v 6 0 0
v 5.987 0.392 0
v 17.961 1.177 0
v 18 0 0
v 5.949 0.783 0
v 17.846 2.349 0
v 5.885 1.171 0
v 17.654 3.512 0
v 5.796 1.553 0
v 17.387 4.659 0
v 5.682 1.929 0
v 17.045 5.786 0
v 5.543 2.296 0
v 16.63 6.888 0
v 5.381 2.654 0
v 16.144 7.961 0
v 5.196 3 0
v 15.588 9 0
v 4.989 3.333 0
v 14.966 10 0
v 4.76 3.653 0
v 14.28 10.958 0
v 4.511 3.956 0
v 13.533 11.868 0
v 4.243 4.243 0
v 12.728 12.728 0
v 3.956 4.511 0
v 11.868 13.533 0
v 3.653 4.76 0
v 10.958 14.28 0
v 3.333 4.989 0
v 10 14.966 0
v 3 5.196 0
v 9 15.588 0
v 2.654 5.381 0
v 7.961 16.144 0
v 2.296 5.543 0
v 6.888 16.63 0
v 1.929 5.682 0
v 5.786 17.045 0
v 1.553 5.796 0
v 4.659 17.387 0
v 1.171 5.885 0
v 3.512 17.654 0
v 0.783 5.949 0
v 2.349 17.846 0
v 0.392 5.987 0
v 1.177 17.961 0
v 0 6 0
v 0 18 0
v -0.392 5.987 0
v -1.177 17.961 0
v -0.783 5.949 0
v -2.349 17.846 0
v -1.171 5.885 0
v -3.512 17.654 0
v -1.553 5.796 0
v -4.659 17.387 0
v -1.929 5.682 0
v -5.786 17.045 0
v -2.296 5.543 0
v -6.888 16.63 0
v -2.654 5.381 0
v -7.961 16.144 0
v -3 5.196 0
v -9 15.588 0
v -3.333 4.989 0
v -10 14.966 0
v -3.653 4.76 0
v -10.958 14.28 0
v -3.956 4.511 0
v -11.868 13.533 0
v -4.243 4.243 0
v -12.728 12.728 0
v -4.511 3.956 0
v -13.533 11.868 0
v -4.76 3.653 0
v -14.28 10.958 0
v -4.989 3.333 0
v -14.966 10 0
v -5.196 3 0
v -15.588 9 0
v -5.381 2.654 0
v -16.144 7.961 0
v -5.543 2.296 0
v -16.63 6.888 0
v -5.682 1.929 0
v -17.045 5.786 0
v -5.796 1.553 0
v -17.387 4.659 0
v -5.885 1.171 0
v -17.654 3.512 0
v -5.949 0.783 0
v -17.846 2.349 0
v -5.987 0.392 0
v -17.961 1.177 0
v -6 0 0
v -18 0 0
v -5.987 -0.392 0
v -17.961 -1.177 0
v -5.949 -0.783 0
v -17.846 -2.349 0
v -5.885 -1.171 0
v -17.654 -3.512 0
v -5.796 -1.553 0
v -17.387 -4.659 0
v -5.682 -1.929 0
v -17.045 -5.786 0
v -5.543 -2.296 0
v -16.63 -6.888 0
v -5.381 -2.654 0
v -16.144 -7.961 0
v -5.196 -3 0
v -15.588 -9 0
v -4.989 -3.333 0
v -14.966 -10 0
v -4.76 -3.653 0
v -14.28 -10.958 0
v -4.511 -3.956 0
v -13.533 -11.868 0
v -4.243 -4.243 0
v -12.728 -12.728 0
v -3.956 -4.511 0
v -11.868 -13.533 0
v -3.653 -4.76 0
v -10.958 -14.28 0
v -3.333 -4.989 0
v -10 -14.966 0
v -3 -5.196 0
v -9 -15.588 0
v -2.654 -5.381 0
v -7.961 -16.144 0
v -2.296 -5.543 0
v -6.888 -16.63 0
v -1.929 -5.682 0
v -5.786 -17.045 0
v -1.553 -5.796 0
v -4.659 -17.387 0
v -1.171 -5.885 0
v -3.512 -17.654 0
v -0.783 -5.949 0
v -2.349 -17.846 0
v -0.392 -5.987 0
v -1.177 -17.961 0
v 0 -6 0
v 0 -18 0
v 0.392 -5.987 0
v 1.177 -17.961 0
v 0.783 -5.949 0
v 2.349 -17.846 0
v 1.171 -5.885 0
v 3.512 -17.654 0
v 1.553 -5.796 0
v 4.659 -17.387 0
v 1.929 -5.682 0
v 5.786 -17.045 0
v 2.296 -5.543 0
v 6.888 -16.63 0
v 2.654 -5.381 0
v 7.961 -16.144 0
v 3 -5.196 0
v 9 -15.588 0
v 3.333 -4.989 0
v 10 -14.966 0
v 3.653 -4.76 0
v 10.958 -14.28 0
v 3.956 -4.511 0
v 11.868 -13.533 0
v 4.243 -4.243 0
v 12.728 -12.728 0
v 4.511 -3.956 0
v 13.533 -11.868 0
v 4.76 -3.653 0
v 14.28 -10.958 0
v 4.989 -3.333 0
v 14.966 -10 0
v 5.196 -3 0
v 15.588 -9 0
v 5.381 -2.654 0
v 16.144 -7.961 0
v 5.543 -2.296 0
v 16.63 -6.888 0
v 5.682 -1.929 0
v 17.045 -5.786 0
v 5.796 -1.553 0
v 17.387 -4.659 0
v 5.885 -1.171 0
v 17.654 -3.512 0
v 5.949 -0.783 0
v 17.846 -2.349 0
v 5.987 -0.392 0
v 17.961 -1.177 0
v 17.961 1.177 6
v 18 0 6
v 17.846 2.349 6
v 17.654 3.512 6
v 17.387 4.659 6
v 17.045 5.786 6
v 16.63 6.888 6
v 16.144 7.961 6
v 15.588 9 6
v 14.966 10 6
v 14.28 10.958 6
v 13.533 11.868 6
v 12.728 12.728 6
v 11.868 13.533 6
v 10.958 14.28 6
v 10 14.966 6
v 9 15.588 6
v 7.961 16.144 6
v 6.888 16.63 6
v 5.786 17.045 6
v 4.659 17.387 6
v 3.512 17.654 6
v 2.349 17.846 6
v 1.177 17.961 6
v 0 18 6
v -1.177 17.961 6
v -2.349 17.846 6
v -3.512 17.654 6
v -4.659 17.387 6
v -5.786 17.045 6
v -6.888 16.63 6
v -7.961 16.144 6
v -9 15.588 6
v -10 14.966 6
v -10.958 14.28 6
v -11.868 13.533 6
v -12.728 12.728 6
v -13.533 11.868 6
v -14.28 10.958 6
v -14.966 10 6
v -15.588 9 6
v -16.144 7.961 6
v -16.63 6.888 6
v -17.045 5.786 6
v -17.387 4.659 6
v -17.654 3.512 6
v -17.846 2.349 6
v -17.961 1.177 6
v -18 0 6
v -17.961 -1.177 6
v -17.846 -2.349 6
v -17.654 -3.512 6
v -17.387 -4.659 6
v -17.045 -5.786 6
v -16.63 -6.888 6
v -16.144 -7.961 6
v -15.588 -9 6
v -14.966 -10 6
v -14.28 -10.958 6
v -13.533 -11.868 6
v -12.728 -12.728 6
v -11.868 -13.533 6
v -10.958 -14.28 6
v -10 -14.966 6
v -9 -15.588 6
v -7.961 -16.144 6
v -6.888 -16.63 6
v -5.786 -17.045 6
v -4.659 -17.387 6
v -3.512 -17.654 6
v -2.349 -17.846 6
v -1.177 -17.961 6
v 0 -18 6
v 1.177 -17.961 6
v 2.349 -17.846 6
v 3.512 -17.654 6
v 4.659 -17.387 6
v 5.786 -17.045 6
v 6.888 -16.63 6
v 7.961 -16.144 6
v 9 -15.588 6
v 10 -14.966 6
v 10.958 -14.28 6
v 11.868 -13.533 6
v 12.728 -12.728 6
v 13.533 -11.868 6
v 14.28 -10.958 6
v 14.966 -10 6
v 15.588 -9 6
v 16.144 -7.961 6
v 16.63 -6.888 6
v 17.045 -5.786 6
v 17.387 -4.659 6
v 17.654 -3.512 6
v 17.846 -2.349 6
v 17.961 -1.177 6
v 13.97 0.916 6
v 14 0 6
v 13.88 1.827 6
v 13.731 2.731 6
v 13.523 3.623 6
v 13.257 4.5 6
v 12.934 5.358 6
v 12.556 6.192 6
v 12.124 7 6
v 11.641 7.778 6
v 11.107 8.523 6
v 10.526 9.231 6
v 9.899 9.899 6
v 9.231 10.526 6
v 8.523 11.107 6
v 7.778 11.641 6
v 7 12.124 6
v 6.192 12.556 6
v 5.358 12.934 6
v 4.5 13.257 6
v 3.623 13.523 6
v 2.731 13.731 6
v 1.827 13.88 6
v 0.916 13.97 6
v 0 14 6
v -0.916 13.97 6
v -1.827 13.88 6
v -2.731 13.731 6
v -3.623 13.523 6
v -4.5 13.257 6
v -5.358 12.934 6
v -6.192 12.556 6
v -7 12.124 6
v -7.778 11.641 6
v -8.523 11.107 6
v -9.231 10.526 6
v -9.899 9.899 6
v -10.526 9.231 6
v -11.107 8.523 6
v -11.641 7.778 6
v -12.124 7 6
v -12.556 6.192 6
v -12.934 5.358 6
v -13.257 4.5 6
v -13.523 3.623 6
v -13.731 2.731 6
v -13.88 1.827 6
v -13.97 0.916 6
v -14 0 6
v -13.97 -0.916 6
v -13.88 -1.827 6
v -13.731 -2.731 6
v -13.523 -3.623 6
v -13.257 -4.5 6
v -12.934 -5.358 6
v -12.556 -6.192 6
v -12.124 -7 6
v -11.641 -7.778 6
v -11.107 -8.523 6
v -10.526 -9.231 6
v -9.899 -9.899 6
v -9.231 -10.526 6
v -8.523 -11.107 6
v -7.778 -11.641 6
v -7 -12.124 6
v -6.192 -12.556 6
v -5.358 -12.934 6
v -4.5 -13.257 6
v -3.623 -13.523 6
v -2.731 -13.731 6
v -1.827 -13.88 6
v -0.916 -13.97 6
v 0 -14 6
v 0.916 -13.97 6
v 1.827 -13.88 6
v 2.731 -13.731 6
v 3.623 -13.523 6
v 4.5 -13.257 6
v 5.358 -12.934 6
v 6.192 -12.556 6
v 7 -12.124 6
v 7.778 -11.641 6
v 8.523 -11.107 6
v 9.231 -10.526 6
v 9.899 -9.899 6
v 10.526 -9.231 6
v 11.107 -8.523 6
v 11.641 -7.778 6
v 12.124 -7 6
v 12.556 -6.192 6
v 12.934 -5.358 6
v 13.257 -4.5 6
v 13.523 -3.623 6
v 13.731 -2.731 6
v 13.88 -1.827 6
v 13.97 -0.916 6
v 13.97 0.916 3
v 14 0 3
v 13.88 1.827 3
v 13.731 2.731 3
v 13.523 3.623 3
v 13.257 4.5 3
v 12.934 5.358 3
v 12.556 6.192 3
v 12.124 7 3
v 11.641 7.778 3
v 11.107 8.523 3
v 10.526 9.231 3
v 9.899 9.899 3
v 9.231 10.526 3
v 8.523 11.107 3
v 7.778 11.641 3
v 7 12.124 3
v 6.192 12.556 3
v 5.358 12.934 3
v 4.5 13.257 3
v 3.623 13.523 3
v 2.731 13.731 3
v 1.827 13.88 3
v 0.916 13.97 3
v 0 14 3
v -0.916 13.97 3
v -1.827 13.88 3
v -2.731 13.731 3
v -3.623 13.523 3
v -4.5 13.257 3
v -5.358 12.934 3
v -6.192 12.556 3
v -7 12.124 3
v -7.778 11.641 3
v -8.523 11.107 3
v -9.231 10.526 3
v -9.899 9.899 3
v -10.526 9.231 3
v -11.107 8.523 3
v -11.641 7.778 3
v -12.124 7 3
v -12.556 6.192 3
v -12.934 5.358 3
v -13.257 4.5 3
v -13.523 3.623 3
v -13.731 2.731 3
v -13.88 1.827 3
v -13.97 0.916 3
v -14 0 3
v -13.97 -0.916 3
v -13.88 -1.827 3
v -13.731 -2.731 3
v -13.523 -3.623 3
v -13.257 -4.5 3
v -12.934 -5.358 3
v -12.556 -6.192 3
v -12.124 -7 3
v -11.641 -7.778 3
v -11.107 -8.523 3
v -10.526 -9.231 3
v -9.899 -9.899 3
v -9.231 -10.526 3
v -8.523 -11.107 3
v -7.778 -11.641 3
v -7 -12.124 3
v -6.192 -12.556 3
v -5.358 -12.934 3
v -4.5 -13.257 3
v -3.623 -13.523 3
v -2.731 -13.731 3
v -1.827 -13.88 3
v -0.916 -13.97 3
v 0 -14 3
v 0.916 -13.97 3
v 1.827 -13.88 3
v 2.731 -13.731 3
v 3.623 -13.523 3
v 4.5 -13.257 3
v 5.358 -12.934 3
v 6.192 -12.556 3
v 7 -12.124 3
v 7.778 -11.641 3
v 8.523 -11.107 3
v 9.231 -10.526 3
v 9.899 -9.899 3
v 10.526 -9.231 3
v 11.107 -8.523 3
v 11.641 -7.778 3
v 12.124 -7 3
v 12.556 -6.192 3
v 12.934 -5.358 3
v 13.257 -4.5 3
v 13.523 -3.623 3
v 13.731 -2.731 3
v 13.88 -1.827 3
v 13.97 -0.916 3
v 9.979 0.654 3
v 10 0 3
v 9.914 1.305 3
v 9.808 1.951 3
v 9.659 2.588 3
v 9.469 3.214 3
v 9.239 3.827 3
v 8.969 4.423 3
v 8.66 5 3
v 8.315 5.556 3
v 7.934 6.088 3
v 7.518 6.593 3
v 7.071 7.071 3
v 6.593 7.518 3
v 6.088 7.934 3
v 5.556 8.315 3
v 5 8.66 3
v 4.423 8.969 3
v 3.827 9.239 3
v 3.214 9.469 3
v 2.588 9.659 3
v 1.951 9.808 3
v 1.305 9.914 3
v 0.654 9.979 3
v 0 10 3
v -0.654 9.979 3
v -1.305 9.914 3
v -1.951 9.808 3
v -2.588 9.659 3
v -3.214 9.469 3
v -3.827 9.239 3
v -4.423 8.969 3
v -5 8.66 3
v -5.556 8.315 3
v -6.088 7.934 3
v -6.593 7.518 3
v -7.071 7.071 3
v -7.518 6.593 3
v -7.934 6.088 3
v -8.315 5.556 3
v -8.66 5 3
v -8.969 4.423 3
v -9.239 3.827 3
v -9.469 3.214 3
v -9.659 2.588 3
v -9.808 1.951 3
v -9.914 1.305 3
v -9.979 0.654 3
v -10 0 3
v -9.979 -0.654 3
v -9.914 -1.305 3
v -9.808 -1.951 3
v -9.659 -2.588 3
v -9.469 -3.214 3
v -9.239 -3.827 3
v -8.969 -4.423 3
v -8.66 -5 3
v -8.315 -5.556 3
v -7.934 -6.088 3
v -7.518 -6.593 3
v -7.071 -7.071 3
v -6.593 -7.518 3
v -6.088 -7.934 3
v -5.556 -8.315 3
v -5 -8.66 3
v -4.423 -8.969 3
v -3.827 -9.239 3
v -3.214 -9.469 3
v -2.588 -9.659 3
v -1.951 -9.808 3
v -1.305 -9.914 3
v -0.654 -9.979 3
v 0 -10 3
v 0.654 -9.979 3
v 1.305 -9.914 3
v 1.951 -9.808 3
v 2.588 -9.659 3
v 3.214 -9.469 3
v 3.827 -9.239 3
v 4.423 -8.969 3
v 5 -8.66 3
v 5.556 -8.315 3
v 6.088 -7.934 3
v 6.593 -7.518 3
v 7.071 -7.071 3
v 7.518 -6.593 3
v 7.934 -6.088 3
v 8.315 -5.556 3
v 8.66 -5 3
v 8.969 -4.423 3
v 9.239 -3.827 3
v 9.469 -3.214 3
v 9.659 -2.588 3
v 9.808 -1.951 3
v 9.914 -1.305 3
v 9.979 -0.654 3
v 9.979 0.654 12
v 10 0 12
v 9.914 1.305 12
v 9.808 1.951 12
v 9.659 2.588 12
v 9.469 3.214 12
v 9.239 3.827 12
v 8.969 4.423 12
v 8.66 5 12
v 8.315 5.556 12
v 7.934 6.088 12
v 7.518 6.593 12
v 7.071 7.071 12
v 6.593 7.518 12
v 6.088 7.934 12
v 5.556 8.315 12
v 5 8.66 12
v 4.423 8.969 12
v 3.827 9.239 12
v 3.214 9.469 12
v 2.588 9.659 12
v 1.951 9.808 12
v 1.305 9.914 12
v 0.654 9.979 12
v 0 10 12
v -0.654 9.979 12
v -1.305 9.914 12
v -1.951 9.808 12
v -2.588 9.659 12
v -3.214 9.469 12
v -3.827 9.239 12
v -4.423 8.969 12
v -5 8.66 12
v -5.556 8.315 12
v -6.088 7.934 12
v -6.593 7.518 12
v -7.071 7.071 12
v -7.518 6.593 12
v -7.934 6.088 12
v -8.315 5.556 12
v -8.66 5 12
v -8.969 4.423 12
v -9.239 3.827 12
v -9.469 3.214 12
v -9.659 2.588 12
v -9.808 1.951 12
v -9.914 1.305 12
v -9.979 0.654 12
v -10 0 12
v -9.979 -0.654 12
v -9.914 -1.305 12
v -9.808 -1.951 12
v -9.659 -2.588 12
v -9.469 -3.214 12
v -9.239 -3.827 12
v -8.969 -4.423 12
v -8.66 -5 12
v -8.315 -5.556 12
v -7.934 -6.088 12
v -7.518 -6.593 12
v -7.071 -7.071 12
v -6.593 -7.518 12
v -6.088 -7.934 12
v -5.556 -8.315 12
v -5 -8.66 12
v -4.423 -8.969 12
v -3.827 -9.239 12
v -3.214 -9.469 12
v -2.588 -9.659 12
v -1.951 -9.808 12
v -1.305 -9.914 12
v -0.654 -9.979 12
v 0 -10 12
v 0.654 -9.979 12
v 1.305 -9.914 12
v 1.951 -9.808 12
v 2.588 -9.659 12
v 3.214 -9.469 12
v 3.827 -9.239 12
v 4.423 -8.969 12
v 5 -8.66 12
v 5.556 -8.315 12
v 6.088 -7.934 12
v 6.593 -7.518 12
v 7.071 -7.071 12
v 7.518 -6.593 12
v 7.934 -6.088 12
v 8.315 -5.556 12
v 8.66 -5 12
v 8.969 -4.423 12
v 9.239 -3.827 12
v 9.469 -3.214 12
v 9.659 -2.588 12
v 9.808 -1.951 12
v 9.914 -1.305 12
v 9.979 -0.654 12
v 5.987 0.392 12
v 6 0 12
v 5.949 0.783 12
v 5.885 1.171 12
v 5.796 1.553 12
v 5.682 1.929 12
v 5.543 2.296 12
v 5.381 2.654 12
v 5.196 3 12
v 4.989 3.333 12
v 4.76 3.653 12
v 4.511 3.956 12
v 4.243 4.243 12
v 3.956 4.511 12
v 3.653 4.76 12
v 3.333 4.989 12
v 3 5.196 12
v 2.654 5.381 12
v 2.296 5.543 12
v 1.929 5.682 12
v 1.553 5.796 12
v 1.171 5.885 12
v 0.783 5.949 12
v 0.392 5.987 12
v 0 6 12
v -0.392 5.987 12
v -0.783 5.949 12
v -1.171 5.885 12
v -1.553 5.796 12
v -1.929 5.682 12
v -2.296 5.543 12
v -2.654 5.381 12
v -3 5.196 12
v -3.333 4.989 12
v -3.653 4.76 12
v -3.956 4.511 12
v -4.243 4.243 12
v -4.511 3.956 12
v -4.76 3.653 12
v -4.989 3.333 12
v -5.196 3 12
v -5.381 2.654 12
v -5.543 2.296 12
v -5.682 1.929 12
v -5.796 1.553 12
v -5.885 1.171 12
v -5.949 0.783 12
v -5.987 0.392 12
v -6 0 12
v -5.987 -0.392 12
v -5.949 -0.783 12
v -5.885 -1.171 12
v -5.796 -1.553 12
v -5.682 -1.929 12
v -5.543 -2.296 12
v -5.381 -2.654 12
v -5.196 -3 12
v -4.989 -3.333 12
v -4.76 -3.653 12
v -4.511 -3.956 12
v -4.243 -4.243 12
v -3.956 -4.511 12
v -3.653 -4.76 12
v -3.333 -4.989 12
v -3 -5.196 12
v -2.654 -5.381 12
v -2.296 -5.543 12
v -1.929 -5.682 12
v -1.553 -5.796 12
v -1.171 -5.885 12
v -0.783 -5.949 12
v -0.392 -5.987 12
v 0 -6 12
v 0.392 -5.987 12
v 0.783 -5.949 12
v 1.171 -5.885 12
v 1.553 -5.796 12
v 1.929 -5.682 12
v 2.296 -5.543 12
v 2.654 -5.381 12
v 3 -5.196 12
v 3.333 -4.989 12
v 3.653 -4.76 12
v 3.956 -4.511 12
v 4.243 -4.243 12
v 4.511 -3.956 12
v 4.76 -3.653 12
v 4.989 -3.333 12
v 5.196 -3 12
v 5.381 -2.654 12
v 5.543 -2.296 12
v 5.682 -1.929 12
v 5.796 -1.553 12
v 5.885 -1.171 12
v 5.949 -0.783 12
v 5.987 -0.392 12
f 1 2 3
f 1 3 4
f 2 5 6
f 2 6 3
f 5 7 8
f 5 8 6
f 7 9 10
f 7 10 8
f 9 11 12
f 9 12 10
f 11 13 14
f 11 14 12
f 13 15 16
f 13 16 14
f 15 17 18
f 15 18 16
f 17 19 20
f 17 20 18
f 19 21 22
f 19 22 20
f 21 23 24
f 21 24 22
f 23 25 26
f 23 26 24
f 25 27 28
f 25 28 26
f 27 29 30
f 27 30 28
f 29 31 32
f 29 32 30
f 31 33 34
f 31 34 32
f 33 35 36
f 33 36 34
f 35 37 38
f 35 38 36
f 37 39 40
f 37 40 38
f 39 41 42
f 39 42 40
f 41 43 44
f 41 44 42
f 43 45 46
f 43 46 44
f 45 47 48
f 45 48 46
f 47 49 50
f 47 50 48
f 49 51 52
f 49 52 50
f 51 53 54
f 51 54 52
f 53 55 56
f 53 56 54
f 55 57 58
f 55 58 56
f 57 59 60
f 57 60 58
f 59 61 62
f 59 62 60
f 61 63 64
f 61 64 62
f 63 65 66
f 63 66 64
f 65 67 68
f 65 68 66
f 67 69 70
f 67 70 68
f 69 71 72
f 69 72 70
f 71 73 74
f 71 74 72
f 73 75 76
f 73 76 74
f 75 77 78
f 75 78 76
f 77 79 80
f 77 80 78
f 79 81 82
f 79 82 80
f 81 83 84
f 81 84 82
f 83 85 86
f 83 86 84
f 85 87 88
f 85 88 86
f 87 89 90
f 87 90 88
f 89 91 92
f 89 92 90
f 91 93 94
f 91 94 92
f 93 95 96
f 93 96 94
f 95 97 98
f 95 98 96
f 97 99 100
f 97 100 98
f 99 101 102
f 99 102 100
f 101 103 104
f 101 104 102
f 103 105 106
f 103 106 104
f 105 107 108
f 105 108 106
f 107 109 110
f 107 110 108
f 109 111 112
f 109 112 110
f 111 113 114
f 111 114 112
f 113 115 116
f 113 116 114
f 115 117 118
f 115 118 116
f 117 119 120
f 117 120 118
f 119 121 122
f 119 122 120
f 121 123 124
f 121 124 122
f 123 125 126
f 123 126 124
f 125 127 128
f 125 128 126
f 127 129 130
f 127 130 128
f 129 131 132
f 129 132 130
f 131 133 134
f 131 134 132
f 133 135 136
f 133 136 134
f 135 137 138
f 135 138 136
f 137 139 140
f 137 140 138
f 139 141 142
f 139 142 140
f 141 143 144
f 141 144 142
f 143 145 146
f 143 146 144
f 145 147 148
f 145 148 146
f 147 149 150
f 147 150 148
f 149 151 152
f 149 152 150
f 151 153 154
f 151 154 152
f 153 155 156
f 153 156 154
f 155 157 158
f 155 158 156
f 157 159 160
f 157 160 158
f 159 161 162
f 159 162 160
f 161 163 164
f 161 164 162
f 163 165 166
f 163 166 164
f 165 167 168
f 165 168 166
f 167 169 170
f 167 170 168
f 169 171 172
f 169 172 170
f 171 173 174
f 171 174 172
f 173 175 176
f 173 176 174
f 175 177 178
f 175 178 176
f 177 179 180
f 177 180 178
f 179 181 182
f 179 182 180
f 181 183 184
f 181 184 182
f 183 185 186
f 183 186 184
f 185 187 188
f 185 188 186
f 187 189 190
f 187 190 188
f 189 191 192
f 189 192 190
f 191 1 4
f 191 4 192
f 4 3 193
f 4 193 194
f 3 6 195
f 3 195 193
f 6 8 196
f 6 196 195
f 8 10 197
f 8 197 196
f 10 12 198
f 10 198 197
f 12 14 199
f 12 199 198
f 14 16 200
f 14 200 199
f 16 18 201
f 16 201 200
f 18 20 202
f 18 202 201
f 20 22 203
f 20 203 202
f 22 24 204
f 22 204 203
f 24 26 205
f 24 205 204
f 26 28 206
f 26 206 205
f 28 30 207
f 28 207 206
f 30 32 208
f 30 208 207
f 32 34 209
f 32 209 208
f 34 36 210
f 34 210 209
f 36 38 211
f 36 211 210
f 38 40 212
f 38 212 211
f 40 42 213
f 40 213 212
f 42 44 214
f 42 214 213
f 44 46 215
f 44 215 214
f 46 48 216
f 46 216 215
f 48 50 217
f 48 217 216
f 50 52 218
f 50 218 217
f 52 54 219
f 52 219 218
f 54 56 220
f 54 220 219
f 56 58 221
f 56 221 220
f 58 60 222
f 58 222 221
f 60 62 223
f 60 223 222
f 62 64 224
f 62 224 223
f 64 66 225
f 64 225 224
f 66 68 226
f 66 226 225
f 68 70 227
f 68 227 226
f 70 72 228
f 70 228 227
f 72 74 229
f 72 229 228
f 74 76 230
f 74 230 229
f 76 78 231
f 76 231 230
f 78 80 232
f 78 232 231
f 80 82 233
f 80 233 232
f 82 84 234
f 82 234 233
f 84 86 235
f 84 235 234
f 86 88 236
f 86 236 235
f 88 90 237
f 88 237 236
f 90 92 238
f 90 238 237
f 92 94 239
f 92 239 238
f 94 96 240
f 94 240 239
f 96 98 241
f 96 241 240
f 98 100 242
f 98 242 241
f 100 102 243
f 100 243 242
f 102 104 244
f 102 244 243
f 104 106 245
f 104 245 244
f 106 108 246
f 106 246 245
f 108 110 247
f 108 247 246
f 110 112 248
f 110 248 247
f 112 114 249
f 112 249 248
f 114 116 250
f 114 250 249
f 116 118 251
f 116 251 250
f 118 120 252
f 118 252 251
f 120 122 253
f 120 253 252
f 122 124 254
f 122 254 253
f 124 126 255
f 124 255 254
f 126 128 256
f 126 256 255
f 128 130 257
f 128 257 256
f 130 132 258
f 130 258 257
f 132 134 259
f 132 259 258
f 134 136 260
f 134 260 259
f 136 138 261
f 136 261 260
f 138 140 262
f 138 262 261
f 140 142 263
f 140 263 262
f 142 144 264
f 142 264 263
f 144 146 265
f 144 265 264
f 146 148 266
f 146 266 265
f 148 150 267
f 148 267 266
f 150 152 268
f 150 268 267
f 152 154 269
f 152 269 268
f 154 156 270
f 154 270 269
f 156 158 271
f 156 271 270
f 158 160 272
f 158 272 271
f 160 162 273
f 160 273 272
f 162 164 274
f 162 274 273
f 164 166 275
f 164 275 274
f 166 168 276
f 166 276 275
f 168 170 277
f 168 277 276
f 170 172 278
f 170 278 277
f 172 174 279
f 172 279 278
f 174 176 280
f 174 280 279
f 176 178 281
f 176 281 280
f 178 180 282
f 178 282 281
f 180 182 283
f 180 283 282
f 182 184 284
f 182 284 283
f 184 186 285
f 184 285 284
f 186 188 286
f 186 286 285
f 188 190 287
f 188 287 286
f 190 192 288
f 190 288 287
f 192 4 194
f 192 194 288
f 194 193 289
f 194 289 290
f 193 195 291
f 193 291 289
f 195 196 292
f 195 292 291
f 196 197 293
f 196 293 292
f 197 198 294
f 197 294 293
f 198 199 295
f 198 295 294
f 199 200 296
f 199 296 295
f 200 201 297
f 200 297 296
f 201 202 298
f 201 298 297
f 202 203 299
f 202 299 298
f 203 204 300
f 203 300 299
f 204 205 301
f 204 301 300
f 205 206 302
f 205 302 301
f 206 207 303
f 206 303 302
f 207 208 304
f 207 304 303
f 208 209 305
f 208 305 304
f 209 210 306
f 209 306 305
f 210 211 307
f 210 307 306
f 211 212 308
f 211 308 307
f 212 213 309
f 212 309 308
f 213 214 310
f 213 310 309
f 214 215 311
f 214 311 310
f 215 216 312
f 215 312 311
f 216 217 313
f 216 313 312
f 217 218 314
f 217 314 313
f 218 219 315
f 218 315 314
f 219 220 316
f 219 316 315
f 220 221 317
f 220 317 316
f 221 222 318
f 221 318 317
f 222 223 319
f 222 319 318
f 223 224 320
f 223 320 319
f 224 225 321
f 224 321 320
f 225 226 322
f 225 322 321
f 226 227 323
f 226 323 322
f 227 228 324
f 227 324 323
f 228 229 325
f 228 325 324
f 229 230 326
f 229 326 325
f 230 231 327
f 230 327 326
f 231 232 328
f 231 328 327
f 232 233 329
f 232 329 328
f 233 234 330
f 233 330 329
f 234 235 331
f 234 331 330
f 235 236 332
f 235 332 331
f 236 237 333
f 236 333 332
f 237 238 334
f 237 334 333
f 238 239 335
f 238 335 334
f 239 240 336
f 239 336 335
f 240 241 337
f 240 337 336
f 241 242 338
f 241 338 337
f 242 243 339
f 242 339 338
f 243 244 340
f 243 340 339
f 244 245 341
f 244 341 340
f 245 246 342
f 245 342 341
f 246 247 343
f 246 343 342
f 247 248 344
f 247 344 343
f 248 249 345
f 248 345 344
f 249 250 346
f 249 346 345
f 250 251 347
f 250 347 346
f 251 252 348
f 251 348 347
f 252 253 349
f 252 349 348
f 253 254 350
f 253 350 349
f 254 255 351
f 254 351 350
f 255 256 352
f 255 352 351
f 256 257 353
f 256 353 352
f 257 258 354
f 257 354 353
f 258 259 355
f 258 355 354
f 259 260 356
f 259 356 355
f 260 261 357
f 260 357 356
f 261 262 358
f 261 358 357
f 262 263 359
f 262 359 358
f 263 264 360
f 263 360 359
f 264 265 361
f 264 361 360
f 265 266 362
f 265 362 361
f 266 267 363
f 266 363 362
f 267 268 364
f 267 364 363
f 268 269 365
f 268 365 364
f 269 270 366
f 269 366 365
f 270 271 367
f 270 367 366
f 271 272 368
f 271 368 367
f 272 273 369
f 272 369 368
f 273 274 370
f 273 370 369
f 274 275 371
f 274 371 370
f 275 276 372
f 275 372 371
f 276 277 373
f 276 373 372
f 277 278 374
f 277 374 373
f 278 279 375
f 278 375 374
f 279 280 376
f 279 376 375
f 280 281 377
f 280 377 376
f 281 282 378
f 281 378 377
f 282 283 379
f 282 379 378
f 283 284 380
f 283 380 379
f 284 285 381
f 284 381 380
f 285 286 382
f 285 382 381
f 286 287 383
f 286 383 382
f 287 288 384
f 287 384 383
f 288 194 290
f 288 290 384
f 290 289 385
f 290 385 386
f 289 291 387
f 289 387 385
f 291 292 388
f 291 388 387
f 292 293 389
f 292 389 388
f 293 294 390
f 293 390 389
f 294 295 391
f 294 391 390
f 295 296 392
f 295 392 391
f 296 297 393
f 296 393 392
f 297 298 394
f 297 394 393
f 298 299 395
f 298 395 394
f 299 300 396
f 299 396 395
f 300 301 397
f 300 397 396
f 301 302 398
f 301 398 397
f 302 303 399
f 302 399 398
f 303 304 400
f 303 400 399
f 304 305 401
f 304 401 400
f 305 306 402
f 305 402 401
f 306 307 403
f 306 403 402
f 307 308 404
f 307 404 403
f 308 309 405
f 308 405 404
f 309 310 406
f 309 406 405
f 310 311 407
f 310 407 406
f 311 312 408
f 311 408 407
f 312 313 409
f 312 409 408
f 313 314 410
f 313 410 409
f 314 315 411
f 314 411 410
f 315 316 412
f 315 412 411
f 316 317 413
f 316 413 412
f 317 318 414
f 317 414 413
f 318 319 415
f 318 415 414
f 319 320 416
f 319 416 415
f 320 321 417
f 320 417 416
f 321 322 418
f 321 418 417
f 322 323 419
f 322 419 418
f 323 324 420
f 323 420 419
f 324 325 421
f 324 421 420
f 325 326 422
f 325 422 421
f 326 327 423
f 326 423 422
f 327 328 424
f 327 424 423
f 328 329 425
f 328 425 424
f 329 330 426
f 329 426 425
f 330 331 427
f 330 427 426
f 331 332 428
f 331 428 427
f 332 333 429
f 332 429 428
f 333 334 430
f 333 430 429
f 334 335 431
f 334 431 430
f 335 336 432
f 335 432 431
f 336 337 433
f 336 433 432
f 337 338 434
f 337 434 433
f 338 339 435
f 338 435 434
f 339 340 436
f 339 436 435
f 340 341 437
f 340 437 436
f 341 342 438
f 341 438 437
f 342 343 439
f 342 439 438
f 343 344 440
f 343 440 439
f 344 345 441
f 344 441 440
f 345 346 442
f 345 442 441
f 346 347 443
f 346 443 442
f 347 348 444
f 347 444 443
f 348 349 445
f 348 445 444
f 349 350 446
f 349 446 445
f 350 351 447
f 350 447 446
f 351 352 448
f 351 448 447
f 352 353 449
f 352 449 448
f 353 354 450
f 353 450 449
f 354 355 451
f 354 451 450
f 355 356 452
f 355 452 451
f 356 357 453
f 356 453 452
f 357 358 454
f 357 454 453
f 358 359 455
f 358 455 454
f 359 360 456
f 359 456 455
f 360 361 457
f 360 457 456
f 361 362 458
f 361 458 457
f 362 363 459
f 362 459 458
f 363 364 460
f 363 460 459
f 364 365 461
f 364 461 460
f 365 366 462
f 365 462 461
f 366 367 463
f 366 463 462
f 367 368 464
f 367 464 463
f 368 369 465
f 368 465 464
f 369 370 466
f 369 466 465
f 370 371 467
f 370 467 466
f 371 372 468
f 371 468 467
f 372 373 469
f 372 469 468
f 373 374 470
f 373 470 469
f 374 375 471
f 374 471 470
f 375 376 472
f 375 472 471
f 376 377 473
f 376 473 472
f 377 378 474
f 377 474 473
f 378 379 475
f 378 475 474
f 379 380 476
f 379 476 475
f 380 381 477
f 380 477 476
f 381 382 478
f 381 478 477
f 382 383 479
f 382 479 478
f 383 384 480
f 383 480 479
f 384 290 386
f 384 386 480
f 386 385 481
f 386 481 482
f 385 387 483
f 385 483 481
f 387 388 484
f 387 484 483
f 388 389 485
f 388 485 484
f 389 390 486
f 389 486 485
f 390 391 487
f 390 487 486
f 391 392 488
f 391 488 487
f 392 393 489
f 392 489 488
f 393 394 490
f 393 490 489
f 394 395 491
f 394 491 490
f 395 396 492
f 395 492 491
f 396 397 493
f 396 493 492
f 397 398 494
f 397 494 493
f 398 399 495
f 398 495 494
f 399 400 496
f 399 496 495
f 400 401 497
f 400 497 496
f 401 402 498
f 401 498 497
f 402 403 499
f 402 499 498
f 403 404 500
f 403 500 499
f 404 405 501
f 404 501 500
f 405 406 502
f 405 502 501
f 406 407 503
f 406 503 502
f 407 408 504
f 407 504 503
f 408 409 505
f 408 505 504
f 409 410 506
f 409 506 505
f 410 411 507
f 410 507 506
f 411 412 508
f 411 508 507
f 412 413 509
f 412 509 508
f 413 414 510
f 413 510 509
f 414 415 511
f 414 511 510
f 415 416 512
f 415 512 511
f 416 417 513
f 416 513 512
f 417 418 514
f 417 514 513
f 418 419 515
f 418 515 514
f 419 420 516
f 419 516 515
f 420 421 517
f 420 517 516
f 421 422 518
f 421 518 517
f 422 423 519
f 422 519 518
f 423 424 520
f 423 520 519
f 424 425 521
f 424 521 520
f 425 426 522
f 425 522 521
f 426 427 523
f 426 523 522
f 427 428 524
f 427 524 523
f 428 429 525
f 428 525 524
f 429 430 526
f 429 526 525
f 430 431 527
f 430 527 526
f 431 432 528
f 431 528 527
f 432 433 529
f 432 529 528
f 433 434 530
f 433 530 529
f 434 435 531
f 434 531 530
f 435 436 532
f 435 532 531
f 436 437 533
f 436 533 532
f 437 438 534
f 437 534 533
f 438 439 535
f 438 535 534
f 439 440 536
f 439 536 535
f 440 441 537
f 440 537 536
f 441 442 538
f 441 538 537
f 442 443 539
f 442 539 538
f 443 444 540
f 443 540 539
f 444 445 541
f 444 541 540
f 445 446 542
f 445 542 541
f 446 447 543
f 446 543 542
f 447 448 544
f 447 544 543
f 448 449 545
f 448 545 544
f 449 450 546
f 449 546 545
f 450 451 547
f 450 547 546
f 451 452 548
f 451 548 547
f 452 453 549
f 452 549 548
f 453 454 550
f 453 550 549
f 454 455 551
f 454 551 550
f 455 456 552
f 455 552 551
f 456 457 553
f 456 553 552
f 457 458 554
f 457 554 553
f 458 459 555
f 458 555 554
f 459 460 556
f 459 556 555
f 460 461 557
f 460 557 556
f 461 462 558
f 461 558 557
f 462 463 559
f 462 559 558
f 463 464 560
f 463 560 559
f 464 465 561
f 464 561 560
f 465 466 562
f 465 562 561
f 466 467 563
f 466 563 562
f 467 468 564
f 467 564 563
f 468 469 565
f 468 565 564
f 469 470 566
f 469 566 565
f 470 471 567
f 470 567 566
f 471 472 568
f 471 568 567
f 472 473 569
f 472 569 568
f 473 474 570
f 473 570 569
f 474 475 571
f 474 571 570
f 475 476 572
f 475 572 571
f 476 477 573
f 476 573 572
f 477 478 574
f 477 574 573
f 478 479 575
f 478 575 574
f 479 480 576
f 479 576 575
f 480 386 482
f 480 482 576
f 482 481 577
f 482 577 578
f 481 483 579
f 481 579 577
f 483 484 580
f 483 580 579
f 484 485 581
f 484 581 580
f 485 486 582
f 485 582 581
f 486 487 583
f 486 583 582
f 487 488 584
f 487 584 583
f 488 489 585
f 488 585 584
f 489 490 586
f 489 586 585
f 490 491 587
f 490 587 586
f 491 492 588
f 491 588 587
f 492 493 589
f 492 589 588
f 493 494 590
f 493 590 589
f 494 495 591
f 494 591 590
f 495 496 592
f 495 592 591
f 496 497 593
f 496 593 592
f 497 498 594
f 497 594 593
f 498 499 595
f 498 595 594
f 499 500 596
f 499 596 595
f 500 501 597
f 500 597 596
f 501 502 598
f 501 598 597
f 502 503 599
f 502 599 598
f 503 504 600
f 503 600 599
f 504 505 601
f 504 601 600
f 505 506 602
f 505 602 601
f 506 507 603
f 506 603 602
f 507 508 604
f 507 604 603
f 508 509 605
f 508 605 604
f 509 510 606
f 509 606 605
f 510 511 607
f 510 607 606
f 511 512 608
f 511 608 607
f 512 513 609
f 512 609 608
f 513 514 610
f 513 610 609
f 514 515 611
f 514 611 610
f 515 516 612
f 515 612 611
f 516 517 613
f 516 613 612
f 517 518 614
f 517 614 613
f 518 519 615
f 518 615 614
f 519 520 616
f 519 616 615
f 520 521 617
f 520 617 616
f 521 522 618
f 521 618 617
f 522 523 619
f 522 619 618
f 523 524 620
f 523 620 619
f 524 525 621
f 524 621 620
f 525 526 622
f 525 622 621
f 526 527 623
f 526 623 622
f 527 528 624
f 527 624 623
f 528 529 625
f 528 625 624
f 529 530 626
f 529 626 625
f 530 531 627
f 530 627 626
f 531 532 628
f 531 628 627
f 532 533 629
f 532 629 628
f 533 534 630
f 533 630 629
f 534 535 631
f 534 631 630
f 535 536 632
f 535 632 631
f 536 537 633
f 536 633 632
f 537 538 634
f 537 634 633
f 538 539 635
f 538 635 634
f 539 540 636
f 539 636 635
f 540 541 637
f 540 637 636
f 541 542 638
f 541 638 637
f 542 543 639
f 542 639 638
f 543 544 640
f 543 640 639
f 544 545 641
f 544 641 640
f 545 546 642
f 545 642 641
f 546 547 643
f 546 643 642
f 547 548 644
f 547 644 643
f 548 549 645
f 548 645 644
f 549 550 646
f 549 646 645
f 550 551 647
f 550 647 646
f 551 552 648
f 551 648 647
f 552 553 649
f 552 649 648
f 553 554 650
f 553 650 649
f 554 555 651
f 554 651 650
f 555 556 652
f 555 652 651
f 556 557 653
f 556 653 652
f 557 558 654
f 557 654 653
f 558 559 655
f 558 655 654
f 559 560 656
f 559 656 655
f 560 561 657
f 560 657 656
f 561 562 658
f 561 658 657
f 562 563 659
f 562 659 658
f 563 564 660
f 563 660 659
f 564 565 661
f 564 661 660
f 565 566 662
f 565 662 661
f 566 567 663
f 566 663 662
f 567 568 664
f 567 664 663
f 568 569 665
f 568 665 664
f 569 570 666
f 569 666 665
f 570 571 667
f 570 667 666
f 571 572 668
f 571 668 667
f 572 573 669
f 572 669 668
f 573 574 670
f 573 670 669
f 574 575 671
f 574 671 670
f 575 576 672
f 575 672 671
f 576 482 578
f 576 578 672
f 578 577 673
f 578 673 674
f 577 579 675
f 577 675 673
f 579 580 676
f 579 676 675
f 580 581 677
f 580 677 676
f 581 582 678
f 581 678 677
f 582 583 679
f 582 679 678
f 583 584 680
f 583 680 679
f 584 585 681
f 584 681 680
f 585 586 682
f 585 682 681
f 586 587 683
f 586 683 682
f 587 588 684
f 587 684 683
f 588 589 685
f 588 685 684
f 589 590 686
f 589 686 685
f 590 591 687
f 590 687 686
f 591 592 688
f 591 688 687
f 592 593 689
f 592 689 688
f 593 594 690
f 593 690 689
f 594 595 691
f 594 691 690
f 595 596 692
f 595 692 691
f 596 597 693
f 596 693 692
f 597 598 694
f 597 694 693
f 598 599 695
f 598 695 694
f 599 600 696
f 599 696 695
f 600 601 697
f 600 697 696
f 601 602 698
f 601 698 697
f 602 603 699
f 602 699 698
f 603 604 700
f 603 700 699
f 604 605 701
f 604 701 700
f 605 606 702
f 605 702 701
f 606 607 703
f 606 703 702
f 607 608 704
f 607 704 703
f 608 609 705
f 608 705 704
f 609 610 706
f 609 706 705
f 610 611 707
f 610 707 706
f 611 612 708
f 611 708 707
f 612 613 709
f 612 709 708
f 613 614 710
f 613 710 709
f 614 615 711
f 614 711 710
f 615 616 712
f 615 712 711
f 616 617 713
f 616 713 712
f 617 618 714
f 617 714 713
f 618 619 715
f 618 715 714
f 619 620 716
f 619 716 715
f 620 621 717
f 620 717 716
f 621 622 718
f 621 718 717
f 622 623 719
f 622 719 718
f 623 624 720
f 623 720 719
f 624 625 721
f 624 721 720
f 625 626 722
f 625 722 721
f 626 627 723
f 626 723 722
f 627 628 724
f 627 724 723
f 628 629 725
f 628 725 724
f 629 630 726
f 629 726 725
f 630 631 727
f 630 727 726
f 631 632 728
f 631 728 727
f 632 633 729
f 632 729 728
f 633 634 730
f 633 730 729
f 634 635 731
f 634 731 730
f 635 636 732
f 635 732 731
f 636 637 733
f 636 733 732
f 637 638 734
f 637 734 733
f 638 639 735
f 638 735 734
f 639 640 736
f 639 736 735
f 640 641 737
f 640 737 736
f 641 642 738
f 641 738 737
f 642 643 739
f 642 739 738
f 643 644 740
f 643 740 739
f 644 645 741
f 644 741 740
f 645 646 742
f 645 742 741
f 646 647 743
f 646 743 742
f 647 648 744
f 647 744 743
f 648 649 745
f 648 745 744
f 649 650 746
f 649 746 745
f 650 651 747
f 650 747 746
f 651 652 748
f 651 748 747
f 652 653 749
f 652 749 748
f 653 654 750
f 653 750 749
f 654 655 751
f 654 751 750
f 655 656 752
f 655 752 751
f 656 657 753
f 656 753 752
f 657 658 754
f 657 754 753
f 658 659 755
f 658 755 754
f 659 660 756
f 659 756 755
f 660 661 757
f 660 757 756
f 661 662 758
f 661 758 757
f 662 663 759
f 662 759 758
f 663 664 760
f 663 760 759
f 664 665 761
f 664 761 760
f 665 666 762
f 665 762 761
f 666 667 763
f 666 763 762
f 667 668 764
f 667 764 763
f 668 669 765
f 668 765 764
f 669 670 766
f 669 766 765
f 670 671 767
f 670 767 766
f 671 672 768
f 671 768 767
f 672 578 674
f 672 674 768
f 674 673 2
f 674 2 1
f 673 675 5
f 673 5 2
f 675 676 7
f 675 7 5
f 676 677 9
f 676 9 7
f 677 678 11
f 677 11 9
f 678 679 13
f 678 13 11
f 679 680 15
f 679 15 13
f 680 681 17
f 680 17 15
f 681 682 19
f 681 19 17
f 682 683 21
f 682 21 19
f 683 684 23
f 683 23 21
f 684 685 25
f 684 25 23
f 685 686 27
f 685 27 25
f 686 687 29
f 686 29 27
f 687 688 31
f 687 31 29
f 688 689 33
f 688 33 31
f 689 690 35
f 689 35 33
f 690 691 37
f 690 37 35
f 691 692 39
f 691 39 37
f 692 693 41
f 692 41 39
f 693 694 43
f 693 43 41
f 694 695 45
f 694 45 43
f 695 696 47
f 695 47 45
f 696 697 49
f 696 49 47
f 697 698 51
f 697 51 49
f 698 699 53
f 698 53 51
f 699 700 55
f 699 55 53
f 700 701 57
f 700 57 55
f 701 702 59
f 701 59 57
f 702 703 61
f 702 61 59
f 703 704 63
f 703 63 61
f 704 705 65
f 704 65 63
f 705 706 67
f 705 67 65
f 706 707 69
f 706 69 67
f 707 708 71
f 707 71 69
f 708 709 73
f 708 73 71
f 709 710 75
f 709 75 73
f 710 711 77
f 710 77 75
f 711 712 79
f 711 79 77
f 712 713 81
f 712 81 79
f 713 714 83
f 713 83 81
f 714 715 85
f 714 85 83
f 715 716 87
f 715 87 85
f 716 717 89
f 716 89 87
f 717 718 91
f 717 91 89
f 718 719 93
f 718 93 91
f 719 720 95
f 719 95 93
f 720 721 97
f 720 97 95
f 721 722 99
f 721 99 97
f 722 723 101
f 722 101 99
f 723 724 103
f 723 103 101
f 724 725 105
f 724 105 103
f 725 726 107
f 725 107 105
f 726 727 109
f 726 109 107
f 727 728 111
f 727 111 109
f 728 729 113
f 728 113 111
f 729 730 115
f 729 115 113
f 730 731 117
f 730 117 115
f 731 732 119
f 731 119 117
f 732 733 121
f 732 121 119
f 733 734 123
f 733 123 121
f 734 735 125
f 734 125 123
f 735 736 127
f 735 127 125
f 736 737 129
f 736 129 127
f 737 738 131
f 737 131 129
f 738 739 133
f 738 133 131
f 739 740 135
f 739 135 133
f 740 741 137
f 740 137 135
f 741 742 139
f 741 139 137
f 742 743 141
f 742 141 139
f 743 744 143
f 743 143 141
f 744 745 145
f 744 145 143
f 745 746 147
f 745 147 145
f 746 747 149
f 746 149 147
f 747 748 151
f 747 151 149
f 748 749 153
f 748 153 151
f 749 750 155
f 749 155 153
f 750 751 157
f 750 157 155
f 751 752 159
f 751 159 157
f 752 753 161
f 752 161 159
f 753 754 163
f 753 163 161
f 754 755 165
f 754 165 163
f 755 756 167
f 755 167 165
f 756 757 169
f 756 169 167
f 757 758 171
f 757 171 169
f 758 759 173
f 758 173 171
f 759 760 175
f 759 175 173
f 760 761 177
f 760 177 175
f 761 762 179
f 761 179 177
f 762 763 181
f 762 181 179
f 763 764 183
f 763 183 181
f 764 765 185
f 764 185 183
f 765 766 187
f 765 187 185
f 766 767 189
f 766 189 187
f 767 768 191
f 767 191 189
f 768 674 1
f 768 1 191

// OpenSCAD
// Original MechIntel educational model. CC0-1.0. Units: mm.
// Not a standardized or load-rated component.
$fn=96;
// Section points: [radius, height], mm. Edit to change the profile.
section=[[6, 0], [18, 0], [18, 6], [14, 6], [14, 3], [10, 3], [10, 12], [6, 12]];
rotate_extrude($fn=96) polygon(points=section);
